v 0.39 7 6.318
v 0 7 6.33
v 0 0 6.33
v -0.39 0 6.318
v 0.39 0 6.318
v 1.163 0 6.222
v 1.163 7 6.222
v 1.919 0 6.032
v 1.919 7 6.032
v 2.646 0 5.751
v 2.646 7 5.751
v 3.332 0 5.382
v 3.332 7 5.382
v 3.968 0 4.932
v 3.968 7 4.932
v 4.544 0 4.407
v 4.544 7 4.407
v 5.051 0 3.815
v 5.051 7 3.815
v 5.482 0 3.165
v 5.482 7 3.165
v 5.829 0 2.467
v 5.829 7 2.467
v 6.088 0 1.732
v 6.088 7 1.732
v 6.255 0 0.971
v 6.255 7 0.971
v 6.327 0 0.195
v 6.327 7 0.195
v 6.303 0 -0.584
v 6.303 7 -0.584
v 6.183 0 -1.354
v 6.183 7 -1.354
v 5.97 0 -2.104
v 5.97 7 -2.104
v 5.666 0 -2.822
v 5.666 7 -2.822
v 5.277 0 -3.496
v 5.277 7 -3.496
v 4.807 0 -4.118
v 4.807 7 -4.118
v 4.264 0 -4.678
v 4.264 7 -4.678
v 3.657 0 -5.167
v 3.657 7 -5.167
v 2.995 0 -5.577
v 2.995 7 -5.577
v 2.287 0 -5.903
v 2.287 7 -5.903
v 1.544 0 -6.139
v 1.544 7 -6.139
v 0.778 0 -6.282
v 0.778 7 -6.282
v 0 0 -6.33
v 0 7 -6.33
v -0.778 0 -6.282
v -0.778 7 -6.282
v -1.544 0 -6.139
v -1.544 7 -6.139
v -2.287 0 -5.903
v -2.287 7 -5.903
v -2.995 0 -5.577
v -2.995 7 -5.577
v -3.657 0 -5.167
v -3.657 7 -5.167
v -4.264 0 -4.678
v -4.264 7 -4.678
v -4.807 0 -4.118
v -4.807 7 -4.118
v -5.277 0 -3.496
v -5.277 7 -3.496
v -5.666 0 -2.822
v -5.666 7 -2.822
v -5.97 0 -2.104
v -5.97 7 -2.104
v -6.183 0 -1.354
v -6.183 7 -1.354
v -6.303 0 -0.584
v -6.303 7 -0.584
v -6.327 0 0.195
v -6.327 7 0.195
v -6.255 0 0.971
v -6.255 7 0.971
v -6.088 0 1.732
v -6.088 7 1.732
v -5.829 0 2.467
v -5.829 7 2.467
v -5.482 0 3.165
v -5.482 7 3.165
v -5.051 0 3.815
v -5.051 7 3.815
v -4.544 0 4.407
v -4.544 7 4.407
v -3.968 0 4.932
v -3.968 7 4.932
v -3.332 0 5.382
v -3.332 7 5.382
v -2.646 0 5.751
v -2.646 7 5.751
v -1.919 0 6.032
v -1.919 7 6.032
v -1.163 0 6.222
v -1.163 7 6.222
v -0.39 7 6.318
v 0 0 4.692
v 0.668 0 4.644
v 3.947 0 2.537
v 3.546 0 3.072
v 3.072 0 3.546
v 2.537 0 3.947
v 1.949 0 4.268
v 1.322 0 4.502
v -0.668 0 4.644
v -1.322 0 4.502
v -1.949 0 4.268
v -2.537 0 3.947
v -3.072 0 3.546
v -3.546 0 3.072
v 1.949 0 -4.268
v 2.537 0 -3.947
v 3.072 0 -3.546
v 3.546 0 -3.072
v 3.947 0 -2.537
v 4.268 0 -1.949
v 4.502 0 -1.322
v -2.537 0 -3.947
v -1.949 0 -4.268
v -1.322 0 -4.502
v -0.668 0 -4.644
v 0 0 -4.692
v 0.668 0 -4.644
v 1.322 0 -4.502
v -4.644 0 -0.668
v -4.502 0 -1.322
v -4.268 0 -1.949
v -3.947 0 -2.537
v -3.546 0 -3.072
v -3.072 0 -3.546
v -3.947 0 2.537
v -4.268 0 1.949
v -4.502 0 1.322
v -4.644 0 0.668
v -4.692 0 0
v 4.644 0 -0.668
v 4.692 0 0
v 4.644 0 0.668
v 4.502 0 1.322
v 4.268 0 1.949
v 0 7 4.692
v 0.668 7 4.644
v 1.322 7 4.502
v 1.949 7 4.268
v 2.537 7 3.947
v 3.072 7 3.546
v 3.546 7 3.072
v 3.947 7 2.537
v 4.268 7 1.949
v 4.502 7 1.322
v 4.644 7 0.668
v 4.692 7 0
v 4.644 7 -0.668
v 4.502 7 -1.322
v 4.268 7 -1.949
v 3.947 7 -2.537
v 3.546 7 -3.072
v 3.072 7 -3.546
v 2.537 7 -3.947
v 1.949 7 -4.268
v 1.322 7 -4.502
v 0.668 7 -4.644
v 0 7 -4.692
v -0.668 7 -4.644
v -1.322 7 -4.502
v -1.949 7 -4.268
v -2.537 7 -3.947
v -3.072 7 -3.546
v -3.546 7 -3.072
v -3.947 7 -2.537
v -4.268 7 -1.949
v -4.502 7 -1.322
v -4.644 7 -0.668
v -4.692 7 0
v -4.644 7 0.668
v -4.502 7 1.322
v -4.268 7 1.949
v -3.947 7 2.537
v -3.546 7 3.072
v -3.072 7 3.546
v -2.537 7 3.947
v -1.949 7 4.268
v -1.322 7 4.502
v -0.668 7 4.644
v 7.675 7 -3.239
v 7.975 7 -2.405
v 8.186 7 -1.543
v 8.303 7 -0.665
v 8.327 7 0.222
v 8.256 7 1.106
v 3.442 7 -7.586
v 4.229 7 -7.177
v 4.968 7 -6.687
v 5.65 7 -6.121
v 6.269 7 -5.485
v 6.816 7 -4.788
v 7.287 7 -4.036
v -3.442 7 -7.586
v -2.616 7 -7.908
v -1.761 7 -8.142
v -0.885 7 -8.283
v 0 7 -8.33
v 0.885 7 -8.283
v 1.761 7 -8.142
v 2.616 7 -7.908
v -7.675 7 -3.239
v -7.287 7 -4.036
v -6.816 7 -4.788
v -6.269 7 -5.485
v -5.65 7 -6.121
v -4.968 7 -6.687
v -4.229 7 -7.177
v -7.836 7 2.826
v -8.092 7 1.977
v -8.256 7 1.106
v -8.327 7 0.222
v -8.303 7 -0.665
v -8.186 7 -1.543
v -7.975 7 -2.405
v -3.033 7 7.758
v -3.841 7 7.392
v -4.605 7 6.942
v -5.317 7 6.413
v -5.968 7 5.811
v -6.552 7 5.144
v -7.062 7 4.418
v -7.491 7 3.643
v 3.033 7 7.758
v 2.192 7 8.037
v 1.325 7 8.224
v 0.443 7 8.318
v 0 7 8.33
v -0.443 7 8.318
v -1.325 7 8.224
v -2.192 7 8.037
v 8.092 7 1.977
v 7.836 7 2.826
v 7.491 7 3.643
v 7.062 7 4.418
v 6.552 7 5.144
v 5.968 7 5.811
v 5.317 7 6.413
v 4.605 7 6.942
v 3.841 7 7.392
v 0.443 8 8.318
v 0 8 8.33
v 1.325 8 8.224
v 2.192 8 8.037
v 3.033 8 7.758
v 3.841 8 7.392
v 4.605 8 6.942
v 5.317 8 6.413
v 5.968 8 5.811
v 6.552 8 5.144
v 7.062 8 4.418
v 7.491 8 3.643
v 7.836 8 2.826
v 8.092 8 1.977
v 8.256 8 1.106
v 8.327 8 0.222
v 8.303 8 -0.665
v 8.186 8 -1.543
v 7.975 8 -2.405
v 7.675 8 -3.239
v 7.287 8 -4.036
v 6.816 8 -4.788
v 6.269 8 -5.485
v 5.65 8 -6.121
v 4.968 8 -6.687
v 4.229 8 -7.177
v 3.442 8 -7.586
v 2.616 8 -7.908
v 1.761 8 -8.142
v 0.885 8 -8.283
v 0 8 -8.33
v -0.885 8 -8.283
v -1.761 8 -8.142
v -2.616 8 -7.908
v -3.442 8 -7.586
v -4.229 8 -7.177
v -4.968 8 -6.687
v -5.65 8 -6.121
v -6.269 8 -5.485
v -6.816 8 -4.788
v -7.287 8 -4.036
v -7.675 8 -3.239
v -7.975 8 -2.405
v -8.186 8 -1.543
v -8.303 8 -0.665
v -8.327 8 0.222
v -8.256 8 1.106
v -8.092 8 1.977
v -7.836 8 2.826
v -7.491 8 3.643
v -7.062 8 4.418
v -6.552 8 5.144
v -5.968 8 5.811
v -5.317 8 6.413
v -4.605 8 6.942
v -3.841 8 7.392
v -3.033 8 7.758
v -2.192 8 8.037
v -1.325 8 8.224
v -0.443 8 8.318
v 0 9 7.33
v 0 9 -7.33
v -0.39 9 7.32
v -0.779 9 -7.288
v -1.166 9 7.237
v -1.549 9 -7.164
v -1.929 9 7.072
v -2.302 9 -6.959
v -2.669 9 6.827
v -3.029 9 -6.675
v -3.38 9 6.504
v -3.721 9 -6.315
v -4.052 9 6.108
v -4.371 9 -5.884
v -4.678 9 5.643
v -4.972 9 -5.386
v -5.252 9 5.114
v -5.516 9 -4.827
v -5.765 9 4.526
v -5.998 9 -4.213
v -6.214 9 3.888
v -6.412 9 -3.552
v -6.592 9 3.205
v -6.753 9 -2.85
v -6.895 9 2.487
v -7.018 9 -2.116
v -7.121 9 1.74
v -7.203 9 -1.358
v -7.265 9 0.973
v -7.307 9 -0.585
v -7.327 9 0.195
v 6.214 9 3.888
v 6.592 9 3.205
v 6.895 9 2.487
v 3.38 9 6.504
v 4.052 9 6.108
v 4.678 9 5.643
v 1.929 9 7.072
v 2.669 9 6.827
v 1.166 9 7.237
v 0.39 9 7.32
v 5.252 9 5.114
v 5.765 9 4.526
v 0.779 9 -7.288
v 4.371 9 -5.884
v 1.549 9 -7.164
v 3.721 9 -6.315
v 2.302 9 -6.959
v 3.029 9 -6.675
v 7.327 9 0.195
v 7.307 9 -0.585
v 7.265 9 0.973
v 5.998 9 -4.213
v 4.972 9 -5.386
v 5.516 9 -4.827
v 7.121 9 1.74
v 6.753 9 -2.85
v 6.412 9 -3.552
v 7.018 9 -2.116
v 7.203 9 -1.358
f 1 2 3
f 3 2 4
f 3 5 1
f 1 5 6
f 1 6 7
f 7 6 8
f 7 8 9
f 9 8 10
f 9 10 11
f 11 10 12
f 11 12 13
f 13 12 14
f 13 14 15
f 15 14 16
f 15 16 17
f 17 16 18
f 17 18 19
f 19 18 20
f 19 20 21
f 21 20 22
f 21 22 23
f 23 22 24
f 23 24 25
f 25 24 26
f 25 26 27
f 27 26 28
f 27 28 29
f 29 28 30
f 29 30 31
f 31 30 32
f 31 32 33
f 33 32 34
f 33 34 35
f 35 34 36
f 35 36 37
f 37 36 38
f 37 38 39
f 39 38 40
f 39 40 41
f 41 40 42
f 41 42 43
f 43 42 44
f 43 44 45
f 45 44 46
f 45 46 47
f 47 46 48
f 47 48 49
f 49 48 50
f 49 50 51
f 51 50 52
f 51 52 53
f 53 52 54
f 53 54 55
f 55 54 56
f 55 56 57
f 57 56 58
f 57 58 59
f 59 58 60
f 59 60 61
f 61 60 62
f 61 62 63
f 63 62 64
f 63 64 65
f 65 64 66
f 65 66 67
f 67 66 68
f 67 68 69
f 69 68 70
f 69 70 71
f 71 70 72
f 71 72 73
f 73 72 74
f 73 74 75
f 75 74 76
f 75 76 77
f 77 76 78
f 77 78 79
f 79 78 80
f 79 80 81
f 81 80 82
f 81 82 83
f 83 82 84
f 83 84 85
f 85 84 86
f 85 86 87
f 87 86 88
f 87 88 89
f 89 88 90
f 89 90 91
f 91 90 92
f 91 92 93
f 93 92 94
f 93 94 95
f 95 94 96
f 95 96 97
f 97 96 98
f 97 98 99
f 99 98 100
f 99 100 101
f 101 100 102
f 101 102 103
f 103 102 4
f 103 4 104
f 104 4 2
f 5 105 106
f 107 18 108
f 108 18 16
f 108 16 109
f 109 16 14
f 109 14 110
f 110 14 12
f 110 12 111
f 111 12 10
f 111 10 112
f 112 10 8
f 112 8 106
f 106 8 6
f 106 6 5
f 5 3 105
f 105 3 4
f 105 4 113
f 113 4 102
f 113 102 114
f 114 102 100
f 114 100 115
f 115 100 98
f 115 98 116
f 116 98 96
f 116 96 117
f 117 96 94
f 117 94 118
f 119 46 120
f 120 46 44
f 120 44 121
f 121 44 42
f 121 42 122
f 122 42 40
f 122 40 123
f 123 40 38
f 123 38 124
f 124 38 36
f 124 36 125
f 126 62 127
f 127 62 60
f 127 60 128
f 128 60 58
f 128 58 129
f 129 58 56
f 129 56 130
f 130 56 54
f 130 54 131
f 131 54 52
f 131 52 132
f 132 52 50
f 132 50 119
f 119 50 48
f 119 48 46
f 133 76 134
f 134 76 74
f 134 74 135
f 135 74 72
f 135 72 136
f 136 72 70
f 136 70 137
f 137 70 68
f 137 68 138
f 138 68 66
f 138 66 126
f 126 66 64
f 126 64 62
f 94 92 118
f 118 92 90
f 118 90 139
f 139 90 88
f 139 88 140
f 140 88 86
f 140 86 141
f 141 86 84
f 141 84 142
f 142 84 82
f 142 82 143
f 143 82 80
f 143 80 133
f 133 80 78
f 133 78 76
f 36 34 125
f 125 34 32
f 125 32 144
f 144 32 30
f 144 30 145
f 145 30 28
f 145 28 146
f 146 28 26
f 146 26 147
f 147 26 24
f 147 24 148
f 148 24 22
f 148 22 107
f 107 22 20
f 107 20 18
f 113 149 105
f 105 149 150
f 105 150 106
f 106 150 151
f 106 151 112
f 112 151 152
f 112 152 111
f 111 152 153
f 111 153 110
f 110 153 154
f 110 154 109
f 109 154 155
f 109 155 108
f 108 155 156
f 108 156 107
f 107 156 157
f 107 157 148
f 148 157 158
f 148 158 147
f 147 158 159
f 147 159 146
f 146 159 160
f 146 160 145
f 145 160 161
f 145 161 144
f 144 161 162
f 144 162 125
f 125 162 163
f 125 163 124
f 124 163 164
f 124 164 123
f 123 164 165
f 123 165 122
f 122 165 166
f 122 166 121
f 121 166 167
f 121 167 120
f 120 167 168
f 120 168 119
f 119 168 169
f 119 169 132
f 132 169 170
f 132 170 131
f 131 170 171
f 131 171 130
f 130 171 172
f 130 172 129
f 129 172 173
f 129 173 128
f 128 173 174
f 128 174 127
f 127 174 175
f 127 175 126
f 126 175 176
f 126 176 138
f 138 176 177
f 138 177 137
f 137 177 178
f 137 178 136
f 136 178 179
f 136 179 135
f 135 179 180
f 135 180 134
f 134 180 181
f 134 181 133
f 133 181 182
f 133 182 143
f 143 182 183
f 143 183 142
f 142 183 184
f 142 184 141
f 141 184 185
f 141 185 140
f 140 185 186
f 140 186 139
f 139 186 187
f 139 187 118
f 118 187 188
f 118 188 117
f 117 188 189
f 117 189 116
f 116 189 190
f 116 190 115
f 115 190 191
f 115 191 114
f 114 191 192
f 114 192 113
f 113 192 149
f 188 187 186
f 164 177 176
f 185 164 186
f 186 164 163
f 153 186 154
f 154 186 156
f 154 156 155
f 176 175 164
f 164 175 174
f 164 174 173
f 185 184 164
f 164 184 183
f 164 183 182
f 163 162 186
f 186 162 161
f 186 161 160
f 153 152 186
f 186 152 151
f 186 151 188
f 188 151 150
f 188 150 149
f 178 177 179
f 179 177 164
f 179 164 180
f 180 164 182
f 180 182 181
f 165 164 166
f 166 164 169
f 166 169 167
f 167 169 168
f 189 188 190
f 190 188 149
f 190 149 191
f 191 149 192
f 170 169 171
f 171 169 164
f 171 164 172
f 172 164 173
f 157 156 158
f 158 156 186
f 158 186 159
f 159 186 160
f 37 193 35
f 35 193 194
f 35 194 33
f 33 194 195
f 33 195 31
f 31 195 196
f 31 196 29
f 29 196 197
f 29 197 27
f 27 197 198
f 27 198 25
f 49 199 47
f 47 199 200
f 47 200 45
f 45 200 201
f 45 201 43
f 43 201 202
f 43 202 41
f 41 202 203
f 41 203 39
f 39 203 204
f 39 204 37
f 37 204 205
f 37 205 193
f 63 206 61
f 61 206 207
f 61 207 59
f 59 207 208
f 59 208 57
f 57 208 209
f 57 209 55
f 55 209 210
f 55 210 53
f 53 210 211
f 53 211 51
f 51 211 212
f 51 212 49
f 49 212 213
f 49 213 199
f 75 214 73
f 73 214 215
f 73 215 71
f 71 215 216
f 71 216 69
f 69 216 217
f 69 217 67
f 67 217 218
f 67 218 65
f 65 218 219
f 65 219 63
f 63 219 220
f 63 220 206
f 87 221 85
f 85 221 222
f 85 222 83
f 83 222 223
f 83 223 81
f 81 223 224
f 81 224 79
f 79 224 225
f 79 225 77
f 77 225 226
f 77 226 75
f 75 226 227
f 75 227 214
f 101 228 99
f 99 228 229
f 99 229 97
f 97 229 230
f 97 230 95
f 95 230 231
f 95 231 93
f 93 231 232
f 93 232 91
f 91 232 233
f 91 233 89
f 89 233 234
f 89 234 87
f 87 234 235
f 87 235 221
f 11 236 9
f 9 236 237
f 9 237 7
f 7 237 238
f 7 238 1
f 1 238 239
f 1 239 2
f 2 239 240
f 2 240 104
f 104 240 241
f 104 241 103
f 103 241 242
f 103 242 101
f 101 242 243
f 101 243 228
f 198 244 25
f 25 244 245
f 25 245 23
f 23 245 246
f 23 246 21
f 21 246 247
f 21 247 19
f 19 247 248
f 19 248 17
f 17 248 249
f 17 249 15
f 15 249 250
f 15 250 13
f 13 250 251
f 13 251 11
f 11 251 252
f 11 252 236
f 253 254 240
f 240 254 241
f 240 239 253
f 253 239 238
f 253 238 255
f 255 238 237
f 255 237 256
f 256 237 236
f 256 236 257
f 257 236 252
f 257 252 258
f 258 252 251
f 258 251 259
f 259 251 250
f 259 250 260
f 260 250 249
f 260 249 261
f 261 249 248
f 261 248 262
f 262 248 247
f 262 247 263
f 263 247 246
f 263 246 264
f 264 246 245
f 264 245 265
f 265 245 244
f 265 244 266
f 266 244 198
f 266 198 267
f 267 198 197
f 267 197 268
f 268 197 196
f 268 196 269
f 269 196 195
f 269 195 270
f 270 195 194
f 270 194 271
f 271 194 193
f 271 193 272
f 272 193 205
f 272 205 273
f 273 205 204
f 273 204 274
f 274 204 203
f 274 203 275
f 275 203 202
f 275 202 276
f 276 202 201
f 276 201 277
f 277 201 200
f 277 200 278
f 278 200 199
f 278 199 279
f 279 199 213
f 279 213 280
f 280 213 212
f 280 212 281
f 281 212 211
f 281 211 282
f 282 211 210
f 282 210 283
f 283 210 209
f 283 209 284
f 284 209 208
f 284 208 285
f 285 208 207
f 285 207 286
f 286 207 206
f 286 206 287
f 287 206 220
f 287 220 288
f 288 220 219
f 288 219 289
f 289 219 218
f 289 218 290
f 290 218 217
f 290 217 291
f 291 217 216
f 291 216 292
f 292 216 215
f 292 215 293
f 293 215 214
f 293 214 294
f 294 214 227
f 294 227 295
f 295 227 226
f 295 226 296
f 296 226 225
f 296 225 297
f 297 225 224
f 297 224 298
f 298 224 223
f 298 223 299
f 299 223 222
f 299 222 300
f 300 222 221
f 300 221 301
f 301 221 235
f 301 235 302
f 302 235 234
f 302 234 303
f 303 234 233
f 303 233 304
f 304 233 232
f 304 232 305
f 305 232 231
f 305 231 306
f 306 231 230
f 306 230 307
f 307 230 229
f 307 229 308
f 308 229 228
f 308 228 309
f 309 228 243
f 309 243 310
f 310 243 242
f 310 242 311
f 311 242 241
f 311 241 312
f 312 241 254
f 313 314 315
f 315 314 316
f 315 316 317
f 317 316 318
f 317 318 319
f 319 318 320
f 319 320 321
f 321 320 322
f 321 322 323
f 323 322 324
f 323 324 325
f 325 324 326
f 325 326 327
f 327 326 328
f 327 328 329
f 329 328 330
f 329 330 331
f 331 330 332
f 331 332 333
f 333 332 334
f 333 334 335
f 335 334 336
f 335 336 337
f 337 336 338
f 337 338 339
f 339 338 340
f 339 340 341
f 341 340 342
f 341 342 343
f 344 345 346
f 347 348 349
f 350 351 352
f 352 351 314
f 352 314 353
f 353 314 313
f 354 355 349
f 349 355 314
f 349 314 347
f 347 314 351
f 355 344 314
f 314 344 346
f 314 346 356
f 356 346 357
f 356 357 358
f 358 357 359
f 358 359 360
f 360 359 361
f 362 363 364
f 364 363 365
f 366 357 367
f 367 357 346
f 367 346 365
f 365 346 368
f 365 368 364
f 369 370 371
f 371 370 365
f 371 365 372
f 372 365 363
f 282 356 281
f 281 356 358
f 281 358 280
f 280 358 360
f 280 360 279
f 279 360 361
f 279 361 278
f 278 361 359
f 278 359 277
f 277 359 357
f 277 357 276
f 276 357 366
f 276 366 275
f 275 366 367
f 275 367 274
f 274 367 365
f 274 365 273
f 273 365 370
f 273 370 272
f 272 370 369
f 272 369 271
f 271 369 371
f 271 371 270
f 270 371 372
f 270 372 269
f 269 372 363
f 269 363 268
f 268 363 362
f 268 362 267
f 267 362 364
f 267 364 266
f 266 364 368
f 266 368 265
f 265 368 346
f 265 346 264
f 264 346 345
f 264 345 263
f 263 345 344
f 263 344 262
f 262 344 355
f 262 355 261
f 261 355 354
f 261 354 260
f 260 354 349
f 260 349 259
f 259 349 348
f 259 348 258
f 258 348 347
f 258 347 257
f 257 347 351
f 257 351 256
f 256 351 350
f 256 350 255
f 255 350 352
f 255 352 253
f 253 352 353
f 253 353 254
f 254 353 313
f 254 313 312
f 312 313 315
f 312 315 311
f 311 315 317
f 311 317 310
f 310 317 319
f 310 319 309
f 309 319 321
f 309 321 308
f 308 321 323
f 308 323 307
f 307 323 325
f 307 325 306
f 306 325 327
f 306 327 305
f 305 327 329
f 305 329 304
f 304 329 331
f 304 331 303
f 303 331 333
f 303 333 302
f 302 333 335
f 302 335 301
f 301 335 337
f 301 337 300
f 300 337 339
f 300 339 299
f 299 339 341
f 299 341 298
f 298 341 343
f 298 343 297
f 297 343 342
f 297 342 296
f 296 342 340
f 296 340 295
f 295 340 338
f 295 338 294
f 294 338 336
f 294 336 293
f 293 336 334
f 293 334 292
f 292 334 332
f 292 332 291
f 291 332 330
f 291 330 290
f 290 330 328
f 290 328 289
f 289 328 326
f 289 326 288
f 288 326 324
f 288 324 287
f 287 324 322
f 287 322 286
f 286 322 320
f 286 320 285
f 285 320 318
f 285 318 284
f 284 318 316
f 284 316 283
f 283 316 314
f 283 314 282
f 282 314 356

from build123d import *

# Parameters (mm, degrees)
SKETCH1_R           = 6.33
BOSS_EXTRUDE1_DEPTH = 7
SKETCH2_R           = 4.691712698
CUT_EXTRUDE1_DEPTH  = 7
SKETCH3_R           = 8.33
BOSS_EXTRUDE2_DEPTH = 2
CHAMFER1_SIZE       = 1


with BuildPart() as part:
    # Sketch1 → Boss-Extrude1 (new body)
    with BuildSketch(Plane(origin=(0, 0, 0), x_dir=(1, 0, 0), z_dir=(0, 1, 0))):
        Circle(SKETCH1_R)
    extrude(amount=BOSS_EXTRUDE1_DEPTH)

    # Sketch2 → Cut-Extrude1 (cut)
    with BuildSketch(Plane(origin=(0, 7, 0), x_dir=(1, 0, 0), z_dir=(0, 1, 0))):
        Circle(SKETCH2_R)
    extrude(amount=-CUT_EXTRUDE1_DEPTH, mode=Mode.SUBTRACT)

    # Sketch3 → Boss-Extrude2 (add)
    with BuildSketch(Plane(origin=(0, 7, 0), x_dir=(1, 0, 0), z_dir=(0, 1, 0))):
        Circle(SKETCH3_R)
    extrude(amount=BOSS_EXTRUDE2_DEPTH)

    # Chamfer1
    chamfer1_edges = [part.edges().sort_by_distance(p)[0] for p in [
        (-8.33, 9, 0),
    ]]
    chamfer(chamfer1_edges, length=CHAMFER1_SIZE)


solid = part.part
